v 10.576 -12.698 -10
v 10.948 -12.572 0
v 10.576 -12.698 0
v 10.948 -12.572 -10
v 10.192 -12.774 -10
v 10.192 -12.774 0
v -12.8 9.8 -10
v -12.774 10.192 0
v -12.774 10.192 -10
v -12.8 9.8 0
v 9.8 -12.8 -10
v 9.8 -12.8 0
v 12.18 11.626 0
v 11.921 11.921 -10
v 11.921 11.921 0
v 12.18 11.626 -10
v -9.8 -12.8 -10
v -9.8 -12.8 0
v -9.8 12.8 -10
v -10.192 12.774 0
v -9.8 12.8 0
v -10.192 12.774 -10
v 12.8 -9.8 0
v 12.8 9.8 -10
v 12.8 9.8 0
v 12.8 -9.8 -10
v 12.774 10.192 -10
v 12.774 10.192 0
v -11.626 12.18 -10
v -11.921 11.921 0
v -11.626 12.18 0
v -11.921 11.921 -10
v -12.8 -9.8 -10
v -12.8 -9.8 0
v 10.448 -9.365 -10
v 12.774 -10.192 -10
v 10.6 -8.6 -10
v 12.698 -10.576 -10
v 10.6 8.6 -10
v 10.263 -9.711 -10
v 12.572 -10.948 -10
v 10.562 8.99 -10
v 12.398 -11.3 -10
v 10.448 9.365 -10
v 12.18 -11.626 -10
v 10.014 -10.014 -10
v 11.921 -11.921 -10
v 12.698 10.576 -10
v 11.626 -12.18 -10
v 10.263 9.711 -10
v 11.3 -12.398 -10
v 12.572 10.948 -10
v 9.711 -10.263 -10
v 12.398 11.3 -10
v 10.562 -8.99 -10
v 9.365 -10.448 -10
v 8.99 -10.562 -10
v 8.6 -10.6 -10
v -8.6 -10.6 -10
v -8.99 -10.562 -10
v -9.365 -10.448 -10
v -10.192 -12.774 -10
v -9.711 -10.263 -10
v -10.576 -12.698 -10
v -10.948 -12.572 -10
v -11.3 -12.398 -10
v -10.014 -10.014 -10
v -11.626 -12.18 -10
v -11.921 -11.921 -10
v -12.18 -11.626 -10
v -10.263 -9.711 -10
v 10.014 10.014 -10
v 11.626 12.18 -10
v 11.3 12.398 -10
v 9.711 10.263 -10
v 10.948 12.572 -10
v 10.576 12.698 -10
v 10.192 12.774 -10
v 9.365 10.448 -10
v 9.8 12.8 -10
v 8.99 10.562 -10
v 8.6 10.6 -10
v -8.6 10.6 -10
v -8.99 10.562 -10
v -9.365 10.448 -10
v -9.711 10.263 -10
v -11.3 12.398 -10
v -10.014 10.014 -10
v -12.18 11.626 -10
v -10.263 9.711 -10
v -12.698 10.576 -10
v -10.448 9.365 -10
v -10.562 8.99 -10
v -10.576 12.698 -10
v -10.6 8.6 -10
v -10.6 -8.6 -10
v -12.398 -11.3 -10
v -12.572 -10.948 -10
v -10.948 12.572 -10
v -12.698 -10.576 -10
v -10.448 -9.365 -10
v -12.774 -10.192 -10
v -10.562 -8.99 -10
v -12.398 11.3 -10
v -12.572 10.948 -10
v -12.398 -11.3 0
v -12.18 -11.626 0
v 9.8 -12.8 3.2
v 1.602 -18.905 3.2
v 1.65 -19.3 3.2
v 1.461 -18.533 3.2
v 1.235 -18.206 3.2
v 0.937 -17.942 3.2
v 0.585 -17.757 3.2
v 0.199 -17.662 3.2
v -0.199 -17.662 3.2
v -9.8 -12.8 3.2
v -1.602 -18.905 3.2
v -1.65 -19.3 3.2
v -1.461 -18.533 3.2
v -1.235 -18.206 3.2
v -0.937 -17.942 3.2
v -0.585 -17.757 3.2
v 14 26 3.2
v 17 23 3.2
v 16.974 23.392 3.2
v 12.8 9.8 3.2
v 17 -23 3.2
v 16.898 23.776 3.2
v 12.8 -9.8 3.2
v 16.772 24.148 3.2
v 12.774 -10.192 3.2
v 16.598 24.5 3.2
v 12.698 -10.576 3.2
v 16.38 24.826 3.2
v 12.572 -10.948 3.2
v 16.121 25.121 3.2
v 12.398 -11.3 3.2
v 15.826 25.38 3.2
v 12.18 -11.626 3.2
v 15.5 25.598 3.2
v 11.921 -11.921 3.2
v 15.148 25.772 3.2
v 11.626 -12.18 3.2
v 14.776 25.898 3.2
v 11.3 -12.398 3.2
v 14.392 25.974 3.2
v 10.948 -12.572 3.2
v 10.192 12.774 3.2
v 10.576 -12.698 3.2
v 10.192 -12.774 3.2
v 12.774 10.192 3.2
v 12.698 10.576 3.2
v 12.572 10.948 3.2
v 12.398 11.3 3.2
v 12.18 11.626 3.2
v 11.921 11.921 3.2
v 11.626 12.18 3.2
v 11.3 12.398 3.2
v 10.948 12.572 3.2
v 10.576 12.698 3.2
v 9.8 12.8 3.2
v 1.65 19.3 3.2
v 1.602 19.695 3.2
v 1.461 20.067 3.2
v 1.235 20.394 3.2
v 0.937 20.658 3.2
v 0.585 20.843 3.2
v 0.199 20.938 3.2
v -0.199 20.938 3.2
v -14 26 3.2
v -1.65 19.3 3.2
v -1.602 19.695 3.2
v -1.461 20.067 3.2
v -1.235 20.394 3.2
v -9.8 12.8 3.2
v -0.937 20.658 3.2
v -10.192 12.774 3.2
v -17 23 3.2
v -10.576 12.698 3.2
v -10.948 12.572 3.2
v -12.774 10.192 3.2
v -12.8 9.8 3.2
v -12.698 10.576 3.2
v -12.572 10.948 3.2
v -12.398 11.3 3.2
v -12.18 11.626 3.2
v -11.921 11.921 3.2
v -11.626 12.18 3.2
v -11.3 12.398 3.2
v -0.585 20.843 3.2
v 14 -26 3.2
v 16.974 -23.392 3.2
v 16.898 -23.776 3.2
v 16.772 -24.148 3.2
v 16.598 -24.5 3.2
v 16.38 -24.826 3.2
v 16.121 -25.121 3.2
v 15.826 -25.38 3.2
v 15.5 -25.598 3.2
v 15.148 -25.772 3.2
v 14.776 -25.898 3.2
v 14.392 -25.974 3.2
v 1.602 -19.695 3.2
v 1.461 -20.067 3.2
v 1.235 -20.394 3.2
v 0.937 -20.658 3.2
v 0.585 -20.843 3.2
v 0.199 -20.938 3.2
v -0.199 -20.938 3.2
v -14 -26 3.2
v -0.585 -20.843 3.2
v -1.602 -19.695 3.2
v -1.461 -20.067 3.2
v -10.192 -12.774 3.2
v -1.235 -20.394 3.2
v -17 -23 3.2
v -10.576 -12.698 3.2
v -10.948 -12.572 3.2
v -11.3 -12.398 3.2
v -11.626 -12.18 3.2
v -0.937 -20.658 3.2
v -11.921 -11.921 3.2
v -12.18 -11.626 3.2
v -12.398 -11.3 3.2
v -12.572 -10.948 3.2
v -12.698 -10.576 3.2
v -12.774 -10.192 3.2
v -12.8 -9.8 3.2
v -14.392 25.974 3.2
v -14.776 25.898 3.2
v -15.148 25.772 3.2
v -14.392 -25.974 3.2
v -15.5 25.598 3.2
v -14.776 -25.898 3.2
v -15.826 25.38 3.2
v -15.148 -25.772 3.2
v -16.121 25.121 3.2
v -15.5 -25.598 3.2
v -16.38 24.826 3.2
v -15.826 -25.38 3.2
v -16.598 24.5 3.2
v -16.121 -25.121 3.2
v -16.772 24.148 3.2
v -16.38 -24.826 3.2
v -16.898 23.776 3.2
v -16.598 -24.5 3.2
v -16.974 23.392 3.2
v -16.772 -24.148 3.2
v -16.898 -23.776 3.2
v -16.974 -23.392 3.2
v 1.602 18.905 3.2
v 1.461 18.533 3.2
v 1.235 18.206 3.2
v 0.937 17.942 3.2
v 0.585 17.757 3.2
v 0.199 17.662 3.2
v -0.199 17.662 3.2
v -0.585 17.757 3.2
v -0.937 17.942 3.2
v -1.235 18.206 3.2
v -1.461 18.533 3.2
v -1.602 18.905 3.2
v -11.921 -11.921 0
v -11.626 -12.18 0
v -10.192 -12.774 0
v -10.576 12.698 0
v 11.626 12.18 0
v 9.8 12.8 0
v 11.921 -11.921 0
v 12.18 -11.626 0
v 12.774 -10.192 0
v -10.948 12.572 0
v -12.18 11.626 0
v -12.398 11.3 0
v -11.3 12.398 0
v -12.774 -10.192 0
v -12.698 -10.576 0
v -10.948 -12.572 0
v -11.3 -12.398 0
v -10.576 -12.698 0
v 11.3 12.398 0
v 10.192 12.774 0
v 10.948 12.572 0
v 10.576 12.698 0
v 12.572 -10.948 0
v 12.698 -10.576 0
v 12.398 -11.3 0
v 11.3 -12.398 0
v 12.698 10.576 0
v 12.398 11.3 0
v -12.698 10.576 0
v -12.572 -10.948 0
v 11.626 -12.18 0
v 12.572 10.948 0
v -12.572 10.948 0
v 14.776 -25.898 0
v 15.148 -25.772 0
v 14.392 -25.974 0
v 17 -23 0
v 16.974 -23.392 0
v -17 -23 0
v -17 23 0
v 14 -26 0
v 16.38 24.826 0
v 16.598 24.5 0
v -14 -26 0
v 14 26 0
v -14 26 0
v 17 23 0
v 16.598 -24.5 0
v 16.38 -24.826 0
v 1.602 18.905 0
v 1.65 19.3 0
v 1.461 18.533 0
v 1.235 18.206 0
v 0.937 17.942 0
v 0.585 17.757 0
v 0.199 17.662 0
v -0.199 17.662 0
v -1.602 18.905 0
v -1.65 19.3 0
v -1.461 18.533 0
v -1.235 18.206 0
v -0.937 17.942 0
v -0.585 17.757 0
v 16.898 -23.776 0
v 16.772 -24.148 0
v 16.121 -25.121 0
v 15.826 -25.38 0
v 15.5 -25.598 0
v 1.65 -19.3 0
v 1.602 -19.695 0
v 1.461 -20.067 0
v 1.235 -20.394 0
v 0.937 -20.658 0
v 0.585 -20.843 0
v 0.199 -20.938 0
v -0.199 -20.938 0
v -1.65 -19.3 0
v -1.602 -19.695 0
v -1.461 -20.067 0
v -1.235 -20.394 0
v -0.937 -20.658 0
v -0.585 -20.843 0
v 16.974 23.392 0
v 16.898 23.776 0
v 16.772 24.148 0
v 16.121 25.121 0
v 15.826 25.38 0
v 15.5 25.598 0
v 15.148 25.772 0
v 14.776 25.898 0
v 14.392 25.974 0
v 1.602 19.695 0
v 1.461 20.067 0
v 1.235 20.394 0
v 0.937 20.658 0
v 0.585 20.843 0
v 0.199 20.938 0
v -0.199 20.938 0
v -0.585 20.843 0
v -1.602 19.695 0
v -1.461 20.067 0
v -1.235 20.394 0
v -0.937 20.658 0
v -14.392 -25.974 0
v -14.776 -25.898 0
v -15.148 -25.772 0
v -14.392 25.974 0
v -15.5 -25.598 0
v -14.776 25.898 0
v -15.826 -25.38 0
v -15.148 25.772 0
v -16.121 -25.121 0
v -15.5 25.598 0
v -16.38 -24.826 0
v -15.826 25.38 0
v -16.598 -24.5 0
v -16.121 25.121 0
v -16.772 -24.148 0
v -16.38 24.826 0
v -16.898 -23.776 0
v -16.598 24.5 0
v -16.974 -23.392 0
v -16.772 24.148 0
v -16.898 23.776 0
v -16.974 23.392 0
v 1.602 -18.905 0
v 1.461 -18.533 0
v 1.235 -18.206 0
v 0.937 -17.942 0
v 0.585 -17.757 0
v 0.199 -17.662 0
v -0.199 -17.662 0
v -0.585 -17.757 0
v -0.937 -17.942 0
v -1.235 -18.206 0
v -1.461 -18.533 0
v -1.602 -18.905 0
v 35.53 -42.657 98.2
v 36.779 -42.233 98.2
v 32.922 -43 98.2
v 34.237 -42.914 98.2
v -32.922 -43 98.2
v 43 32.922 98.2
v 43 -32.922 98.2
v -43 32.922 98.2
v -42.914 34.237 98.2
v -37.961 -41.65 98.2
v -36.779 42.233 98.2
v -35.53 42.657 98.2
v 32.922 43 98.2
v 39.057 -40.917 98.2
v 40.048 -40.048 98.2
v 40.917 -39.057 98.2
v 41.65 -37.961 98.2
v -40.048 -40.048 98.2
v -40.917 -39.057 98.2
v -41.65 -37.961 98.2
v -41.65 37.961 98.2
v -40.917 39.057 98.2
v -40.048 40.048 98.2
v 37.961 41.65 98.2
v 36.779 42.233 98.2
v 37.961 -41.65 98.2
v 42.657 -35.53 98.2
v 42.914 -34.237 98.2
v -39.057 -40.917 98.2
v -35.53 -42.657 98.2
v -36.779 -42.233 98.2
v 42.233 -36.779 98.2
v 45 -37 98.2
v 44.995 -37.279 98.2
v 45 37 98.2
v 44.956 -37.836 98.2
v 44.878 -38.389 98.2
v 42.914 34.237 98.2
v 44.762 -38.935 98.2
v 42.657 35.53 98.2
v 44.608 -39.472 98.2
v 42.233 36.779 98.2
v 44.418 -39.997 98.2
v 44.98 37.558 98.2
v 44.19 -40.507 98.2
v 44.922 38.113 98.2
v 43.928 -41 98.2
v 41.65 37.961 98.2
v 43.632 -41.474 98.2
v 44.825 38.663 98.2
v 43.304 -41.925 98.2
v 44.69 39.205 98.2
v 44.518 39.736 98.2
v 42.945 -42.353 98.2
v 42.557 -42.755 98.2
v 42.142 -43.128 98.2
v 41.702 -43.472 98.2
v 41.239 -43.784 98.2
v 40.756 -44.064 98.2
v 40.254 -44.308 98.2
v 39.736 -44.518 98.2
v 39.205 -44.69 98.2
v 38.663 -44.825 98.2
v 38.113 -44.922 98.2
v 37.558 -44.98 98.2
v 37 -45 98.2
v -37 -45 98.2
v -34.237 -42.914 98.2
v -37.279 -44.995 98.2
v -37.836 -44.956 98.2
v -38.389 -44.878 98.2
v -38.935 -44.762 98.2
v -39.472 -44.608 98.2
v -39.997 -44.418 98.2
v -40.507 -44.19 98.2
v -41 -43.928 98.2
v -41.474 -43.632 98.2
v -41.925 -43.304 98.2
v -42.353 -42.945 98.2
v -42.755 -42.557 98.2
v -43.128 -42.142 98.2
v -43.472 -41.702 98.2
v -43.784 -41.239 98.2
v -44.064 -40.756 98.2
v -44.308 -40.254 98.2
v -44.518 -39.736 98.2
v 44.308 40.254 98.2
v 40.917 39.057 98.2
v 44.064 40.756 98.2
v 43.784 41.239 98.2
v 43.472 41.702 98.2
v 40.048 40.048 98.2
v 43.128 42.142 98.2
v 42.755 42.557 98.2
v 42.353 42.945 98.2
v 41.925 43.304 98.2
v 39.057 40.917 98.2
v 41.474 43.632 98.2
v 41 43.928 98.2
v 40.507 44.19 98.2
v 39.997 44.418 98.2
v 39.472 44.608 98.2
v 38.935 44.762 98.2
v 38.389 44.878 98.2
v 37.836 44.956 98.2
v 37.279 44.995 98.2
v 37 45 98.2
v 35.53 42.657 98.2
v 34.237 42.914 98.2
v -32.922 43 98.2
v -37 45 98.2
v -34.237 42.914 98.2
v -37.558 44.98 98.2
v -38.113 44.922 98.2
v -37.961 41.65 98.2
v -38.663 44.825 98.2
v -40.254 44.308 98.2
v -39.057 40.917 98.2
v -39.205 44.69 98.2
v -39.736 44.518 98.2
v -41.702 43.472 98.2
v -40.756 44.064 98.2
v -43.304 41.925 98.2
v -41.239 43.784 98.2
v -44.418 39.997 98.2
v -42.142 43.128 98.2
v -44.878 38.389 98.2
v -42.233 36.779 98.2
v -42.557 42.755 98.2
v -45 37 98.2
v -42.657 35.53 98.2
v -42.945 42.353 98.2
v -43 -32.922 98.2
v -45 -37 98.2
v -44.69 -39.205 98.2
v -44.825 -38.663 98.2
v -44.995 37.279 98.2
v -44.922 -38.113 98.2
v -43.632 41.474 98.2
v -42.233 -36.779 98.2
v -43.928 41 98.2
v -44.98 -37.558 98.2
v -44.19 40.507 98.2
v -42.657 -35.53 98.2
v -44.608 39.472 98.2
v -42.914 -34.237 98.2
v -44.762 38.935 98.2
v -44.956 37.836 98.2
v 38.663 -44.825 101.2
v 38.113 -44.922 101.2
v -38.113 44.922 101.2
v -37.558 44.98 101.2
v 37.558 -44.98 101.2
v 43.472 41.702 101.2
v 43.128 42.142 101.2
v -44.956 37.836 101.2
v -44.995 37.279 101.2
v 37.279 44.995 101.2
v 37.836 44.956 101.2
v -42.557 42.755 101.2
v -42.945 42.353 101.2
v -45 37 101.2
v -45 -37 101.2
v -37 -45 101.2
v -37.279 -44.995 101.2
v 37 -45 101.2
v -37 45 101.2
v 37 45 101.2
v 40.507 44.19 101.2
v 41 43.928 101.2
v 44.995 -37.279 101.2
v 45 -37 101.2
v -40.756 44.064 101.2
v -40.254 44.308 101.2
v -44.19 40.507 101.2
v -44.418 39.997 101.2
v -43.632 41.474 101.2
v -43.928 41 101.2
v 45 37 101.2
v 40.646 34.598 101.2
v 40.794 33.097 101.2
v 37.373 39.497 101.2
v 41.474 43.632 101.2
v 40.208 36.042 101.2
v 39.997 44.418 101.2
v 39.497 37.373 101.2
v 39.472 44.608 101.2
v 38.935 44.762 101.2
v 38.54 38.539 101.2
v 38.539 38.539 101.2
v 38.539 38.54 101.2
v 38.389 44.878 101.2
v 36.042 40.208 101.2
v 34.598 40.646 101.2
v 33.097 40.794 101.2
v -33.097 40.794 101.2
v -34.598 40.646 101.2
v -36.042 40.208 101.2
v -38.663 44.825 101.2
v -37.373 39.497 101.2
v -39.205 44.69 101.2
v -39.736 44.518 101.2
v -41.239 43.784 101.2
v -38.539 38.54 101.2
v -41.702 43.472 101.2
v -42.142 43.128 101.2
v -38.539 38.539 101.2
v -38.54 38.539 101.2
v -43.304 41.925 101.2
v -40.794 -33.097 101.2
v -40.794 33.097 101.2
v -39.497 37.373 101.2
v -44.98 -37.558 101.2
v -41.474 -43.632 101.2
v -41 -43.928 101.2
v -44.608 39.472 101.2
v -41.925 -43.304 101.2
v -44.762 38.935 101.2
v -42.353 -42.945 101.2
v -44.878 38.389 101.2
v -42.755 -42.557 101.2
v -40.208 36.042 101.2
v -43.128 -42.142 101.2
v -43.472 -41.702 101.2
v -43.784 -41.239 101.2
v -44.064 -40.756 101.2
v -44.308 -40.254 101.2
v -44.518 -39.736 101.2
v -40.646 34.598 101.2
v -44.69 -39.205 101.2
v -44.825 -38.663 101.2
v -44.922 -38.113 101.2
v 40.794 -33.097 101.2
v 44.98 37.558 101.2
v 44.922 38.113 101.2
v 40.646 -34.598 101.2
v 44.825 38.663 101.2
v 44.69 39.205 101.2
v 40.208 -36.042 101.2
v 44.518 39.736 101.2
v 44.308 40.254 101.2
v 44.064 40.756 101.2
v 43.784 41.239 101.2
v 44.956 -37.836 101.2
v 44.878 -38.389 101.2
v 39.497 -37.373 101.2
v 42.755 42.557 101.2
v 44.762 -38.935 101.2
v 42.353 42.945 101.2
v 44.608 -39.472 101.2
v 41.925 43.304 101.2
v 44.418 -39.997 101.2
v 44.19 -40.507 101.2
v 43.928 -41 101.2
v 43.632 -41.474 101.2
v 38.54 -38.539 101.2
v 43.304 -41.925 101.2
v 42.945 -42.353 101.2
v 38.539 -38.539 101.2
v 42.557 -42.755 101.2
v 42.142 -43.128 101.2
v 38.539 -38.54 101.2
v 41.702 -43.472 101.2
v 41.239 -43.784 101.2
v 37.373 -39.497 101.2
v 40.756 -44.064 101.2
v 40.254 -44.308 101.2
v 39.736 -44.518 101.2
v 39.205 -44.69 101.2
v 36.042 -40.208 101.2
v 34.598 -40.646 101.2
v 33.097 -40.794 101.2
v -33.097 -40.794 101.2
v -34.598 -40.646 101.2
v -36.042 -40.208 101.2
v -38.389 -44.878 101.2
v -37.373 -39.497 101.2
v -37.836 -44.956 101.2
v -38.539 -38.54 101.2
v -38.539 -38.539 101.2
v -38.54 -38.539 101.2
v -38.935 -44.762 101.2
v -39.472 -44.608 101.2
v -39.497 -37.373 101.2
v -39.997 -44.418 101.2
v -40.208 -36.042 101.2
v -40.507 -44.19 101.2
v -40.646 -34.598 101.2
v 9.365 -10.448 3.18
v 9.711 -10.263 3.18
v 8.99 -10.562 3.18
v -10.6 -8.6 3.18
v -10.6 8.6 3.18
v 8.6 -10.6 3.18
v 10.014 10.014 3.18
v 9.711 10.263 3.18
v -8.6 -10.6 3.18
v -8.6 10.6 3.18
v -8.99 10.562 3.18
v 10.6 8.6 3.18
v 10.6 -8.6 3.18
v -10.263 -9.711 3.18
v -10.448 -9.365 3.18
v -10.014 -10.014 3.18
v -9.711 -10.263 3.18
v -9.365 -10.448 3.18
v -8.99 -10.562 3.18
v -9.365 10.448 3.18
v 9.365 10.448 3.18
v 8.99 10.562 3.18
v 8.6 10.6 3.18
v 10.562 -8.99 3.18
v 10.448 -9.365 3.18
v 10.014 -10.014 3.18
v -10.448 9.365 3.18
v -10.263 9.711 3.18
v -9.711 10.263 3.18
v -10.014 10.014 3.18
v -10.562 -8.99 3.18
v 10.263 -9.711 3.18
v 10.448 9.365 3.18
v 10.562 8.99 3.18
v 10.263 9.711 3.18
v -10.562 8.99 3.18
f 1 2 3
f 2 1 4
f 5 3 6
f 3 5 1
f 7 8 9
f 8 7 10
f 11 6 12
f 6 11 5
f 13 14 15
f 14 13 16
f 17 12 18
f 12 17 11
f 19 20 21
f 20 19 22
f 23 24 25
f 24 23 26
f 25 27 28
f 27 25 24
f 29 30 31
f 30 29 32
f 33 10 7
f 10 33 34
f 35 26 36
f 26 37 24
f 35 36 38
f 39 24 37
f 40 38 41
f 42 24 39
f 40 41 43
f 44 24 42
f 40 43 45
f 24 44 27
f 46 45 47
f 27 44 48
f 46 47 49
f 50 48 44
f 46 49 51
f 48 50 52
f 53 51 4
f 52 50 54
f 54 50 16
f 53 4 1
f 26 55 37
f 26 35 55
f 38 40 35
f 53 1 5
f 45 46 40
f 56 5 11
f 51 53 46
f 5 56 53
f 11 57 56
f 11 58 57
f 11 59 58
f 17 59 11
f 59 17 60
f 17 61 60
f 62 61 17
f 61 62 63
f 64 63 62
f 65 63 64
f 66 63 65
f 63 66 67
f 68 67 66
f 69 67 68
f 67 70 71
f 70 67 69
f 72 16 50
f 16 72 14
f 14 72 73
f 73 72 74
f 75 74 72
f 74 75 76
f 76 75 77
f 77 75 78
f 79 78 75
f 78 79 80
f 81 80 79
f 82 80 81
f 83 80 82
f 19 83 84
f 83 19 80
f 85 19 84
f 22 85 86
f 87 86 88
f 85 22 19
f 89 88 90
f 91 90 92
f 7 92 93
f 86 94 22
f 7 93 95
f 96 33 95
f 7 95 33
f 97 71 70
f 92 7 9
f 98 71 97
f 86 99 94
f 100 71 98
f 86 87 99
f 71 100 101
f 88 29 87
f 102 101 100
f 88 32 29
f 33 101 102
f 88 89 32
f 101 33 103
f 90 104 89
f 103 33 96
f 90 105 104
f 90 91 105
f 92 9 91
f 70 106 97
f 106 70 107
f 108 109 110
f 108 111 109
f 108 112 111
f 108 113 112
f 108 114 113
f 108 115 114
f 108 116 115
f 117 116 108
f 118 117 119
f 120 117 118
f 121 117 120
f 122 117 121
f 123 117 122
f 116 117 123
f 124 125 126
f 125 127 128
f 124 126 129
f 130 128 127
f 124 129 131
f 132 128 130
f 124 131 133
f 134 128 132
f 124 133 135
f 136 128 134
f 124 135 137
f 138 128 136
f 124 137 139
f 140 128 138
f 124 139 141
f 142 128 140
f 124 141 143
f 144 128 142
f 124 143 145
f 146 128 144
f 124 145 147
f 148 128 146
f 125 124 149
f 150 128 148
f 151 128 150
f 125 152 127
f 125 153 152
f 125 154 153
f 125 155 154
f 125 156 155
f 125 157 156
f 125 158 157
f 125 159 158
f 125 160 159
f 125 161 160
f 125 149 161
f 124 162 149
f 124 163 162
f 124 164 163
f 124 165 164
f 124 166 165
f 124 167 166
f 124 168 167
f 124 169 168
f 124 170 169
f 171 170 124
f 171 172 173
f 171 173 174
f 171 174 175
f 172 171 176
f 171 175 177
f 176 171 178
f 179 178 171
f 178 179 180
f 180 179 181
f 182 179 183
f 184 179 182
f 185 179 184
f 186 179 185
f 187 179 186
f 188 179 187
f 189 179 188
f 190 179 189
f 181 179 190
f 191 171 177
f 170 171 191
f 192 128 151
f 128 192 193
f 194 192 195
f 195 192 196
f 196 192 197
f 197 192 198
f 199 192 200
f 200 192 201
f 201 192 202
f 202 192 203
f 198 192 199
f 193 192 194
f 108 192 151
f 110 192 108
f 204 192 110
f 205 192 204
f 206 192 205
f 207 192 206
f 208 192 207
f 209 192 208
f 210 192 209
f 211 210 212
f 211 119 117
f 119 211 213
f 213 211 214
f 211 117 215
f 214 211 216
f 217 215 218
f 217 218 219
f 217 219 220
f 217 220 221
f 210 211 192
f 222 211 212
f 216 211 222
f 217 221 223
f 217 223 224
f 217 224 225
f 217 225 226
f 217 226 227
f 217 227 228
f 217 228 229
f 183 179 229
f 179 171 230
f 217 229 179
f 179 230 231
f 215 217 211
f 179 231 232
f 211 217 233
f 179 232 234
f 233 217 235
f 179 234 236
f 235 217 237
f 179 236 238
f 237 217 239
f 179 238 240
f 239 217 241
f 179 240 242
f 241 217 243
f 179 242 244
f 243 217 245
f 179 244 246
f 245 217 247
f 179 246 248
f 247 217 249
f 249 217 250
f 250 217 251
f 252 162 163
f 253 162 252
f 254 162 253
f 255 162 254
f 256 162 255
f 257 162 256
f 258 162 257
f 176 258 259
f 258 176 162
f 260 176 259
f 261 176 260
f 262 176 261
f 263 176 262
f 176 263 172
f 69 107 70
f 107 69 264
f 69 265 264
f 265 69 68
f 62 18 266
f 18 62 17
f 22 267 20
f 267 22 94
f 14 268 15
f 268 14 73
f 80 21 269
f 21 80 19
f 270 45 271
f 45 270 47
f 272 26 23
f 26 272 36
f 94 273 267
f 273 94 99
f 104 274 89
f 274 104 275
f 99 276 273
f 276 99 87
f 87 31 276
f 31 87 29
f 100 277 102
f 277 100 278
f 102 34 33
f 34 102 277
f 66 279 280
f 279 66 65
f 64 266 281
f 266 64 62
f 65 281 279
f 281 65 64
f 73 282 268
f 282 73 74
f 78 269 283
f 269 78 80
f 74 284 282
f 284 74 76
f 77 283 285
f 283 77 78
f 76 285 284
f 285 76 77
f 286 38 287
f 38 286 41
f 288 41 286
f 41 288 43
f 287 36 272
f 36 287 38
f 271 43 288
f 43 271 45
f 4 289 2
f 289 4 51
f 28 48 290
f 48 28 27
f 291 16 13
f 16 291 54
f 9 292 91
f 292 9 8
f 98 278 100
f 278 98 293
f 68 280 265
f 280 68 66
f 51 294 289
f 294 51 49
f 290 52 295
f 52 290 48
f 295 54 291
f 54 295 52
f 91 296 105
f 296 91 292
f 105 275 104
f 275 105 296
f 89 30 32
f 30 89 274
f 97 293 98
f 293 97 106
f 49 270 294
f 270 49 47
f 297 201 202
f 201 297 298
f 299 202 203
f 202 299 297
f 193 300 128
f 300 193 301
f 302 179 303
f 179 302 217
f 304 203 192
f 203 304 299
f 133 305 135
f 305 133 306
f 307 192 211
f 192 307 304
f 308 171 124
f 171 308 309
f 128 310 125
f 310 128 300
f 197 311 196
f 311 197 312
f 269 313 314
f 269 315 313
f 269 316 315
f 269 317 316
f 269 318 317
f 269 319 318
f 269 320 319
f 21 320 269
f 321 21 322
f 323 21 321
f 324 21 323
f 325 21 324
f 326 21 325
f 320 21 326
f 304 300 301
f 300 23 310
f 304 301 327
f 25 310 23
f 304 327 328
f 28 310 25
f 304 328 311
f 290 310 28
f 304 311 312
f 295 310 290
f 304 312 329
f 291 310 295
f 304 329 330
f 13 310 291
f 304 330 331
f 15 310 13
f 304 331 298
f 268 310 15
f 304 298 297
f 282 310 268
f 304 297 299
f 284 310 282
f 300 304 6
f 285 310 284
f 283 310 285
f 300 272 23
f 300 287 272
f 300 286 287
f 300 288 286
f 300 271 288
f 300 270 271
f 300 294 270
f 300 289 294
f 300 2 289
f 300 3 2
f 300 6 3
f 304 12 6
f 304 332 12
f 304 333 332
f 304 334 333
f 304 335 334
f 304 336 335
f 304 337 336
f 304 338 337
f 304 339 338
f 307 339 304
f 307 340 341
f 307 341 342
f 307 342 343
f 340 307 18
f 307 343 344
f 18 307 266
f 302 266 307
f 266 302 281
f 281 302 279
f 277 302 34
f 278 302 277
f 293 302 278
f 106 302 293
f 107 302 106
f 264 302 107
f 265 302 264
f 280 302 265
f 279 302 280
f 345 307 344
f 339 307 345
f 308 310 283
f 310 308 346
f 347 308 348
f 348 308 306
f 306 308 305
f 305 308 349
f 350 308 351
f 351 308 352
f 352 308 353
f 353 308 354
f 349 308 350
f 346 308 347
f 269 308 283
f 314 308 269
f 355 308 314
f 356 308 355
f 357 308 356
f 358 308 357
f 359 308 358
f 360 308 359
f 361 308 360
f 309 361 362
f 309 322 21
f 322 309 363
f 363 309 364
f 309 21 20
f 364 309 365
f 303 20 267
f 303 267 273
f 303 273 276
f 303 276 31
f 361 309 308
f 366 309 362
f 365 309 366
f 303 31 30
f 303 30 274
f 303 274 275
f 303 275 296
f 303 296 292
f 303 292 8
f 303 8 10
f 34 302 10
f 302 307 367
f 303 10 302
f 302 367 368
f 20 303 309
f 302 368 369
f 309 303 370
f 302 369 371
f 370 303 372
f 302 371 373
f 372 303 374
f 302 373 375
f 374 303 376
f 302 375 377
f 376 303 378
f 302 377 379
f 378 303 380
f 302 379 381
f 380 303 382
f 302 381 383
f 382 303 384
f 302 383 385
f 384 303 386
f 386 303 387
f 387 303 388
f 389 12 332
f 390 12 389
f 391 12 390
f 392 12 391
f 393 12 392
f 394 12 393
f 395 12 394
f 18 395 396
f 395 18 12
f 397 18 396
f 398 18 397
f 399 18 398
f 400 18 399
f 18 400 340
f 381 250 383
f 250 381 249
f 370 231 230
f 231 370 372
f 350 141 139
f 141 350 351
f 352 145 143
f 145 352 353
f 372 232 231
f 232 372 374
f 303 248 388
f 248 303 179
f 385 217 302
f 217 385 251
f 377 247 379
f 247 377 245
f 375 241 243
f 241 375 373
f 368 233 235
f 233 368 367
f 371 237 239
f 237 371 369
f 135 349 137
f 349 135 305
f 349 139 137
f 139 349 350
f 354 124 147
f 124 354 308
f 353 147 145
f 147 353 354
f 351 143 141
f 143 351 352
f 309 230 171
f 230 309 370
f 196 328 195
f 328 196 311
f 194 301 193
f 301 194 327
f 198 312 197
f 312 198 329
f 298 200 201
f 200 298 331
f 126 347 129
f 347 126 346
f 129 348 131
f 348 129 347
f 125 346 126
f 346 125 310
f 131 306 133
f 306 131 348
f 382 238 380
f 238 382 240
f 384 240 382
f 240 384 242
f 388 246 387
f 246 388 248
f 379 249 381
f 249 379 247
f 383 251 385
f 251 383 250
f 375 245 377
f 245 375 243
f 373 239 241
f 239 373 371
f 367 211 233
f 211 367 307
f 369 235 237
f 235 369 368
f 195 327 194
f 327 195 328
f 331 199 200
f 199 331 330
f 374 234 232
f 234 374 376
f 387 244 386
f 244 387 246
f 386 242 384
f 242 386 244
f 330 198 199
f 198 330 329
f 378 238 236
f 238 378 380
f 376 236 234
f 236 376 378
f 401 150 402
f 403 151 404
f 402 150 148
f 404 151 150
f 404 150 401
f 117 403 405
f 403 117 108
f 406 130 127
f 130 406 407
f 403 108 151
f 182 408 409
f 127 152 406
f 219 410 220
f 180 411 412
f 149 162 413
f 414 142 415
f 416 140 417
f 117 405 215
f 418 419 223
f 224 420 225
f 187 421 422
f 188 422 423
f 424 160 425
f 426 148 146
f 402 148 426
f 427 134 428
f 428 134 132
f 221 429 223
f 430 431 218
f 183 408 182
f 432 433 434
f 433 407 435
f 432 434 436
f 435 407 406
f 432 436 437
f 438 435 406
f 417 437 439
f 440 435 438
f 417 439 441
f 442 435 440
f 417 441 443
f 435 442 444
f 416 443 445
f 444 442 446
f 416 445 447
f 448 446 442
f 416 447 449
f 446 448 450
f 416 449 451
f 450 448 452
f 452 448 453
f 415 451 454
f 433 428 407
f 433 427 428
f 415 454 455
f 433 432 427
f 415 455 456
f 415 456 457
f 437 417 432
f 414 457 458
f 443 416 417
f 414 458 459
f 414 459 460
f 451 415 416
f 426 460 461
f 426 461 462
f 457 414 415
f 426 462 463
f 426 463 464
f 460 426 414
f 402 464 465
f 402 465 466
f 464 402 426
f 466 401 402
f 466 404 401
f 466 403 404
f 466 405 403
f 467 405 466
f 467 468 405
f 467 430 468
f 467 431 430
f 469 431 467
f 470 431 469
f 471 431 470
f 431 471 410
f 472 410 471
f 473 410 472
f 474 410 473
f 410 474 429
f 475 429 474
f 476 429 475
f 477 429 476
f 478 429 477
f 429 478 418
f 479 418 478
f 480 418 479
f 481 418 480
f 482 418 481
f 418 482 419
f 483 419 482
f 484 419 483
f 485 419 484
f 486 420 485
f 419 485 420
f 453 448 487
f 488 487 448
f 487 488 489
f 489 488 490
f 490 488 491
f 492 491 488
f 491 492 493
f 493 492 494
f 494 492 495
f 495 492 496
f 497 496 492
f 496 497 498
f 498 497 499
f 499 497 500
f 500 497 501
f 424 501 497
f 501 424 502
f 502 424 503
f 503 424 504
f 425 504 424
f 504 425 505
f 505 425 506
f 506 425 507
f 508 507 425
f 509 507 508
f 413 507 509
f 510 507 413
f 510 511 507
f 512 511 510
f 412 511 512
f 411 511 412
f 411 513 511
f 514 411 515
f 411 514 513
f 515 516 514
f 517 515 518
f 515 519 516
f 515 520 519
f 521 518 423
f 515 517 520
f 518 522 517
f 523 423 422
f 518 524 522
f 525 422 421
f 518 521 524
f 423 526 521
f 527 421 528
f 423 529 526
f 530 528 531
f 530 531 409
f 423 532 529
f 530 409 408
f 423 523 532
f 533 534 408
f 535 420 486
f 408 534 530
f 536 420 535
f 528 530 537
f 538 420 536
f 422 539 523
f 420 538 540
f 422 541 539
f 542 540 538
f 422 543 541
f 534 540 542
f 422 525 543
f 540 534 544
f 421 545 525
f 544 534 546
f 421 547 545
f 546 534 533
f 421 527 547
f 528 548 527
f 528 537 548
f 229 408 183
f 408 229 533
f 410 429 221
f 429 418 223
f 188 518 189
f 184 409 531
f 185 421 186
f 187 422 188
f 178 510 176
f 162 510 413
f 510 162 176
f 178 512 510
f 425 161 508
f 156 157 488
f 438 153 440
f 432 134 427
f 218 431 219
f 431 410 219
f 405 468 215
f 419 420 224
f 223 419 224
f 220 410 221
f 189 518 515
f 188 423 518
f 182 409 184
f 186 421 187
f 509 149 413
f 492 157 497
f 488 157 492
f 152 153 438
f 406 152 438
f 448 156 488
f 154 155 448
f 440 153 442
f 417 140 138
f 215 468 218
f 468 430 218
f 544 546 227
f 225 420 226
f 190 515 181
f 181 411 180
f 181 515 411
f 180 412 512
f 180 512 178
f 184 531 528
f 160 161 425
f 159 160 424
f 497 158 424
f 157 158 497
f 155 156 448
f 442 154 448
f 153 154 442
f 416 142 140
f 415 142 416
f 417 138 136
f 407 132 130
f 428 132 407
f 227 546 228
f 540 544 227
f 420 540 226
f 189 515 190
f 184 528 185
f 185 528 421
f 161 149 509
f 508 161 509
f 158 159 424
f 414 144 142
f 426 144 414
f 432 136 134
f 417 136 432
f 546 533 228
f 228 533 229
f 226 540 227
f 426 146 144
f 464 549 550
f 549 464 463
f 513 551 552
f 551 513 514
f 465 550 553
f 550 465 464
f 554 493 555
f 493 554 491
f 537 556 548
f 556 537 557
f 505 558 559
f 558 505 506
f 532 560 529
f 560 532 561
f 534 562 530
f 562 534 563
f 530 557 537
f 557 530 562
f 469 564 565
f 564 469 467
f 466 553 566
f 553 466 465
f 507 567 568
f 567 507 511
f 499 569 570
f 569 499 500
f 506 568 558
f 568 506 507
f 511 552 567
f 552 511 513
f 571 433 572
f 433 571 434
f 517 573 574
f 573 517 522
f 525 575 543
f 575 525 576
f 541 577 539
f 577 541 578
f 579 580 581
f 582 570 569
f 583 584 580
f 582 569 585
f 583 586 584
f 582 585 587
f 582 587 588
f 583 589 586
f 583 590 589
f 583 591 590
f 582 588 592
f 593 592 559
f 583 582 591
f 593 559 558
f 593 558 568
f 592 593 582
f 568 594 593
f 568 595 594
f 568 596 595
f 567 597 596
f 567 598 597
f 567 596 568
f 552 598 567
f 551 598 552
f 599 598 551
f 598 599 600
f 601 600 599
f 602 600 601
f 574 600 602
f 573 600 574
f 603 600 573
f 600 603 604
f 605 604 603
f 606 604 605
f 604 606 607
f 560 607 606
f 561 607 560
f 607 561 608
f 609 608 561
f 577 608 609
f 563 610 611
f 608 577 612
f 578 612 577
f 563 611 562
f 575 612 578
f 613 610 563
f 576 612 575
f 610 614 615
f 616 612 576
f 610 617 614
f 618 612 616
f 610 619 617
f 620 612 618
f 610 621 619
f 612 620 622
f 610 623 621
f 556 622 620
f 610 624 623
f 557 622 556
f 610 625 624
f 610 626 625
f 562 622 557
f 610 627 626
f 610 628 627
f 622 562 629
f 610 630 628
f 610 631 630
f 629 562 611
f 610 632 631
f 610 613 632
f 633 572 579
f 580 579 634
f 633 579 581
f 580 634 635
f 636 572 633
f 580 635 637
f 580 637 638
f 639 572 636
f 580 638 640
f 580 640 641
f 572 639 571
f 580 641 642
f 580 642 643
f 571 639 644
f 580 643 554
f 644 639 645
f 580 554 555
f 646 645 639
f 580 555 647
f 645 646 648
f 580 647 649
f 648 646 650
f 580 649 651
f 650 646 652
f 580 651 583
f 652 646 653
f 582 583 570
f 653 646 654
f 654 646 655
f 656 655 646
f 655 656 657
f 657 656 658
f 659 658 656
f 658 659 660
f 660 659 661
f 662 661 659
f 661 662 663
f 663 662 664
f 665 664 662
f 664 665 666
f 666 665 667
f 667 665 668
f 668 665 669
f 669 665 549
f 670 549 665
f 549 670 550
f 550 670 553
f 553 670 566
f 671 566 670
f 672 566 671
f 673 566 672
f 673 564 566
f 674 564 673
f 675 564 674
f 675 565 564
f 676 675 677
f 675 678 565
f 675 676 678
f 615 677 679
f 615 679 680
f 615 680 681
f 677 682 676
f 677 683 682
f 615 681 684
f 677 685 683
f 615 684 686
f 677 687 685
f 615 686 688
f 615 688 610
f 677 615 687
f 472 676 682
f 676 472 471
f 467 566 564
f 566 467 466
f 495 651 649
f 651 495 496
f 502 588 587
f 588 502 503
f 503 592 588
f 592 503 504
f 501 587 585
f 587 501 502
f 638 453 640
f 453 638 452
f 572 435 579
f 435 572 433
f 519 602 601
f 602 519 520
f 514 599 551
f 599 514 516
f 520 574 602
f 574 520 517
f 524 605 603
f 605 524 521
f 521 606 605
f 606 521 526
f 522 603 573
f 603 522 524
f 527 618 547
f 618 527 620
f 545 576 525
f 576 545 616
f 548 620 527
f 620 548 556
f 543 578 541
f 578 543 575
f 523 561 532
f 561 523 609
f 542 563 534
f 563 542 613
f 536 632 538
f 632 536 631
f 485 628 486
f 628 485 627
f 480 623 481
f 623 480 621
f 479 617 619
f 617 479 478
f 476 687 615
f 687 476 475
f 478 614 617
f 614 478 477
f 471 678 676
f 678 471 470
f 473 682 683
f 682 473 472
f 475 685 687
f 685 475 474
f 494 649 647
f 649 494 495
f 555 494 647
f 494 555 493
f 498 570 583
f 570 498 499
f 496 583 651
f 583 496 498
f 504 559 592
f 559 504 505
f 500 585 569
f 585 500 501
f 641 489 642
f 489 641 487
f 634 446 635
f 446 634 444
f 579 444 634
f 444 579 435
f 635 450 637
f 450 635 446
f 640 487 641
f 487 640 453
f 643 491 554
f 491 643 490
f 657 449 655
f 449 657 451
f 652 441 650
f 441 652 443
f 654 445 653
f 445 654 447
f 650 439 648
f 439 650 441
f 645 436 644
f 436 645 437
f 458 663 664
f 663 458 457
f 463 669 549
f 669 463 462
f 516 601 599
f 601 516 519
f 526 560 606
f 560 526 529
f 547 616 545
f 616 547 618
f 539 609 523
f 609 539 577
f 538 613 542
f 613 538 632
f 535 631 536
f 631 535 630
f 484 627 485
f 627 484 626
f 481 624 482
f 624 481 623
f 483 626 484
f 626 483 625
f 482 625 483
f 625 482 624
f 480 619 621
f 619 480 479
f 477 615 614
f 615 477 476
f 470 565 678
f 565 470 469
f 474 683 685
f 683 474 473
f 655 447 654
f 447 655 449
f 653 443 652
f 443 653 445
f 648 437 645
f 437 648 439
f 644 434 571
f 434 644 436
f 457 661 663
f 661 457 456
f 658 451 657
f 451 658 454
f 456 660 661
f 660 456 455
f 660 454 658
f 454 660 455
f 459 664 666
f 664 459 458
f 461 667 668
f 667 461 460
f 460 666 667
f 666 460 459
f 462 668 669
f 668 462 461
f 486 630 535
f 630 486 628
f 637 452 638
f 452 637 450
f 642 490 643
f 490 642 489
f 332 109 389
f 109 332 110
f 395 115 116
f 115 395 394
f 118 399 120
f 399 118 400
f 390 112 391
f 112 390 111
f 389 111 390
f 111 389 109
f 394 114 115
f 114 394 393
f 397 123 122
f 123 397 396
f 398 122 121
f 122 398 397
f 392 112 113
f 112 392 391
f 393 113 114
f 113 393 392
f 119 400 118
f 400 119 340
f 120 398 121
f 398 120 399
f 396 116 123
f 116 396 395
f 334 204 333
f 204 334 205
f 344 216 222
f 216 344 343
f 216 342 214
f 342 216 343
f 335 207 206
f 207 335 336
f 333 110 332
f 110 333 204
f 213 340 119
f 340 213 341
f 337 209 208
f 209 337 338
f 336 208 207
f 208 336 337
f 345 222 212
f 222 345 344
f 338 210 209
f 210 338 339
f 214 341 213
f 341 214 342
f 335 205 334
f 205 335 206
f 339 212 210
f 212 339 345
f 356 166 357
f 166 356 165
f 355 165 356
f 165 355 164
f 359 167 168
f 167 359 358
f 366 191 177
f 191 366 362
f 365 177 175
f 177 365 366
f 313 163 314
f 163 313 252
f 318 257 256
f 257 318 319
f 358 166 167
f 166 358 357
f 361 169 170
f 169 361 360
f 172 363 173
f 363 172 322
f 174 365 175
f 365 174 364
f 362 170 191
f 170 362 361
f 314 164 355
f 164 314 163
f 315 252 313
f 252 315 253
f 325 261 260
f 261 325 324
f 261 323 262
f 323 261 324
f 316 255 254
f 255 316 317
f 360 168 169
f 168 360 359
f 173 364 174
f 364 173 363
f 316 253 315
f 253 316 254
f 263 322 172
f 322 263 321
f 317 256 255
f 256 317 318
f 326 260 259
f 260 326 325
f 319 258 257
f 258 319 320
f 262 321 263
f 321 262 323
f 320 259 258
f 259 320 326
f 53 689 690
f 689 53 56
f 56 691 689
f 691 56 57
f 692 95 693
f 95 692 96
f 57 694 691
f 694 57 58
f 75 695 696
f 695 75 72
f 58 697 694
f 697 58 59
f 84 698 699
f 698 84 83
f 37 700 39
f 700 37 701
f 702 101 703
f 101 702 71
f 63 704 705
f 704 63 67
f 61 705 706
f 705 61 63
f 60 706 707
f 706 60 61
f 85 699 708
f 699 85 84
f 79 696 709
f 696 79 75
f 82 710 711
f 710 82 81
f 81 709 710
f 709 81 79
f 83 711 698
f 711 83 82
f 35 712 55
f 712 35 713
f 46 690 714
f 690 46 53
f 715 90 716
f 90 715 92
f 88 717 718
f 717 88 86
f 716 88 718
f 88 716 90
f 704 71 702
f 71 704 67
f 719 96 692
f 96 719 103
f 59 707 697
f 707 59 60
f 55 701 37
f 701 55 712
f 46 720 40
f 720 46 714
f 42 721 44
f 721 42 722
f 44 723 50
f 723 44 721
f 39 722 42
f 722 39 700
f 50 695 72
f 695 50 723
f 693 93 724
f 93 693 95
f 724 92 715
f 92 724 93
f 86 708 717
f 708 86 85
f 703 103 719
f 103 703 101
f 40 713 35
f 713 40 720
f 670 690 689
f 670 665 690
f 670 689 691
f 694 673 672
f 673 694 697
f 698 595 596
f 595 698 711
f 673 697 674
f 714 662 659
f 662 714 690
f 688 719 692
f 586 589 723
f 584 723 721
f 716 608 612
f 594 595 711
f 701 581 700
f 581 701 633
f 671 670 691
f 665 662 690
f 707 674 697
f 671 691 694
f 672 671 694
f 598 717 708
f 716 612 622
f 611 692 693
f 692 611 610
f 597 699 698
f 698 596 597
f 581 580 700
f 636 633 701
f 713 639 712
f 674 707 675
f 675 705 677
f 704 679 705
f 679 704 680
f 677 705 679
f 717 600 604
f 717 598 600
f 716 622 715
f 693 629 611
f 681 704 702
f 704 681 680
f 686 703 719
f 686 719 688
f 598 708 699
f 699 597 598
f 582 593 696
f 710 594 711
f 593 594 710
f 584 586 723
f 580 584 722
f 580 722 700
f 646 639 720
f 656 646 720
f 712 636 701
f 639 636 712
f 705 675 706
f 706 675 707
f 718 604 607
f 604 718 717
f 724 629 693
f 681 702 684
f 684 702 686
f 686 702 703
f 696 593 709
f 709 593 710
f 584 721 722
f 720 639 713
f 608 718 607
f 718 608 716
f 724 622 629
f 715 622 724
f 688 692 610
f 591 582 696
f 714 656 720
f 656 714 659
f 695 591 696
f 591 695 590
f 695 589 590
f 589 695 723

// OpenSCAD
// =====================================================================
//  AquaFeeder -- funil (reservatorio de racao) ~300 ml
//  Imprimir COMO ESTA (spigot para baixo). Sem suporte.
//  PETG, 0.2mm, 3 paredes, 15% -- paredes finas, nao precisa forca.
//  Se a racao empedrar, aumente hop_taper_h (funil mais ingreme).
// =====================================================================
include <common.scad>

// z = 0 e a face INFERIOR do flange (o que apoia no colar do tubo)
spig_z0   = -hop_spig_h;                 // -10
flange_t  = 3.2;
body_z0   = flange_t;                    // 3.2
body_z1   = body_z0 + hop_taper_h;       // 98.2
rim_z1    = body_z1 + hop_rim;           // 101.2

flange_x  = 34;
flange_y  = 52;                          // cobre as orelhas do colar (y = +-19.3)

in_bot    = hop_bot - 2*hop_wall;        // 21.2
in_top    = hop_top - 2*hop_wall;        // 81.6

module hopper() {
    difference() {
        union() {
            // spigot (entra no socket do tubo) + flange de apoio
            translate([0, 0, spig_z0]) rbox(hop_bot, hop_bot, hop_spig_h + flange_t, 3);
            rbox(flange_x, flange_y, flange_t, 3);
            // corpo troncoconico
            translate([0, 0, body_z0])
                linear_extrude(hop_taper_h, scale = hop_top / hop_bot)
                    rrect(hop_bot, hop_bot, 3);
            // aro de reforco no topo
            translate([0, 0, body_z1])
                linear_extrude(hop_rim) rrect(hop_top + 4, hop_top + 4, 8);
        }
        // cavidade reta no spigot/flange
        translate([0, 0, spig_z0 - 1])
            rbox(in_bot, in_bot, hop_spig_h + flange_t + 1, 2);
        // cavidade troncoconica
        translate([0, 0, body_z0 - eps])
            linear_extrude(hop_taper_h + hop_rim + 2*eps, scale = in_top / in_bot)
                rrect(in_bot, in_bot, 2);
        // furos M3 -> orelhas do colar (parafuso cabeca panela, sem rebaixo)
        for (s = [-1, 1])
            translate([0, s * lug_y, -1])
                cylinder(d = m3_free + fit, h = flange_t + 2);
    }
}

hopper();
